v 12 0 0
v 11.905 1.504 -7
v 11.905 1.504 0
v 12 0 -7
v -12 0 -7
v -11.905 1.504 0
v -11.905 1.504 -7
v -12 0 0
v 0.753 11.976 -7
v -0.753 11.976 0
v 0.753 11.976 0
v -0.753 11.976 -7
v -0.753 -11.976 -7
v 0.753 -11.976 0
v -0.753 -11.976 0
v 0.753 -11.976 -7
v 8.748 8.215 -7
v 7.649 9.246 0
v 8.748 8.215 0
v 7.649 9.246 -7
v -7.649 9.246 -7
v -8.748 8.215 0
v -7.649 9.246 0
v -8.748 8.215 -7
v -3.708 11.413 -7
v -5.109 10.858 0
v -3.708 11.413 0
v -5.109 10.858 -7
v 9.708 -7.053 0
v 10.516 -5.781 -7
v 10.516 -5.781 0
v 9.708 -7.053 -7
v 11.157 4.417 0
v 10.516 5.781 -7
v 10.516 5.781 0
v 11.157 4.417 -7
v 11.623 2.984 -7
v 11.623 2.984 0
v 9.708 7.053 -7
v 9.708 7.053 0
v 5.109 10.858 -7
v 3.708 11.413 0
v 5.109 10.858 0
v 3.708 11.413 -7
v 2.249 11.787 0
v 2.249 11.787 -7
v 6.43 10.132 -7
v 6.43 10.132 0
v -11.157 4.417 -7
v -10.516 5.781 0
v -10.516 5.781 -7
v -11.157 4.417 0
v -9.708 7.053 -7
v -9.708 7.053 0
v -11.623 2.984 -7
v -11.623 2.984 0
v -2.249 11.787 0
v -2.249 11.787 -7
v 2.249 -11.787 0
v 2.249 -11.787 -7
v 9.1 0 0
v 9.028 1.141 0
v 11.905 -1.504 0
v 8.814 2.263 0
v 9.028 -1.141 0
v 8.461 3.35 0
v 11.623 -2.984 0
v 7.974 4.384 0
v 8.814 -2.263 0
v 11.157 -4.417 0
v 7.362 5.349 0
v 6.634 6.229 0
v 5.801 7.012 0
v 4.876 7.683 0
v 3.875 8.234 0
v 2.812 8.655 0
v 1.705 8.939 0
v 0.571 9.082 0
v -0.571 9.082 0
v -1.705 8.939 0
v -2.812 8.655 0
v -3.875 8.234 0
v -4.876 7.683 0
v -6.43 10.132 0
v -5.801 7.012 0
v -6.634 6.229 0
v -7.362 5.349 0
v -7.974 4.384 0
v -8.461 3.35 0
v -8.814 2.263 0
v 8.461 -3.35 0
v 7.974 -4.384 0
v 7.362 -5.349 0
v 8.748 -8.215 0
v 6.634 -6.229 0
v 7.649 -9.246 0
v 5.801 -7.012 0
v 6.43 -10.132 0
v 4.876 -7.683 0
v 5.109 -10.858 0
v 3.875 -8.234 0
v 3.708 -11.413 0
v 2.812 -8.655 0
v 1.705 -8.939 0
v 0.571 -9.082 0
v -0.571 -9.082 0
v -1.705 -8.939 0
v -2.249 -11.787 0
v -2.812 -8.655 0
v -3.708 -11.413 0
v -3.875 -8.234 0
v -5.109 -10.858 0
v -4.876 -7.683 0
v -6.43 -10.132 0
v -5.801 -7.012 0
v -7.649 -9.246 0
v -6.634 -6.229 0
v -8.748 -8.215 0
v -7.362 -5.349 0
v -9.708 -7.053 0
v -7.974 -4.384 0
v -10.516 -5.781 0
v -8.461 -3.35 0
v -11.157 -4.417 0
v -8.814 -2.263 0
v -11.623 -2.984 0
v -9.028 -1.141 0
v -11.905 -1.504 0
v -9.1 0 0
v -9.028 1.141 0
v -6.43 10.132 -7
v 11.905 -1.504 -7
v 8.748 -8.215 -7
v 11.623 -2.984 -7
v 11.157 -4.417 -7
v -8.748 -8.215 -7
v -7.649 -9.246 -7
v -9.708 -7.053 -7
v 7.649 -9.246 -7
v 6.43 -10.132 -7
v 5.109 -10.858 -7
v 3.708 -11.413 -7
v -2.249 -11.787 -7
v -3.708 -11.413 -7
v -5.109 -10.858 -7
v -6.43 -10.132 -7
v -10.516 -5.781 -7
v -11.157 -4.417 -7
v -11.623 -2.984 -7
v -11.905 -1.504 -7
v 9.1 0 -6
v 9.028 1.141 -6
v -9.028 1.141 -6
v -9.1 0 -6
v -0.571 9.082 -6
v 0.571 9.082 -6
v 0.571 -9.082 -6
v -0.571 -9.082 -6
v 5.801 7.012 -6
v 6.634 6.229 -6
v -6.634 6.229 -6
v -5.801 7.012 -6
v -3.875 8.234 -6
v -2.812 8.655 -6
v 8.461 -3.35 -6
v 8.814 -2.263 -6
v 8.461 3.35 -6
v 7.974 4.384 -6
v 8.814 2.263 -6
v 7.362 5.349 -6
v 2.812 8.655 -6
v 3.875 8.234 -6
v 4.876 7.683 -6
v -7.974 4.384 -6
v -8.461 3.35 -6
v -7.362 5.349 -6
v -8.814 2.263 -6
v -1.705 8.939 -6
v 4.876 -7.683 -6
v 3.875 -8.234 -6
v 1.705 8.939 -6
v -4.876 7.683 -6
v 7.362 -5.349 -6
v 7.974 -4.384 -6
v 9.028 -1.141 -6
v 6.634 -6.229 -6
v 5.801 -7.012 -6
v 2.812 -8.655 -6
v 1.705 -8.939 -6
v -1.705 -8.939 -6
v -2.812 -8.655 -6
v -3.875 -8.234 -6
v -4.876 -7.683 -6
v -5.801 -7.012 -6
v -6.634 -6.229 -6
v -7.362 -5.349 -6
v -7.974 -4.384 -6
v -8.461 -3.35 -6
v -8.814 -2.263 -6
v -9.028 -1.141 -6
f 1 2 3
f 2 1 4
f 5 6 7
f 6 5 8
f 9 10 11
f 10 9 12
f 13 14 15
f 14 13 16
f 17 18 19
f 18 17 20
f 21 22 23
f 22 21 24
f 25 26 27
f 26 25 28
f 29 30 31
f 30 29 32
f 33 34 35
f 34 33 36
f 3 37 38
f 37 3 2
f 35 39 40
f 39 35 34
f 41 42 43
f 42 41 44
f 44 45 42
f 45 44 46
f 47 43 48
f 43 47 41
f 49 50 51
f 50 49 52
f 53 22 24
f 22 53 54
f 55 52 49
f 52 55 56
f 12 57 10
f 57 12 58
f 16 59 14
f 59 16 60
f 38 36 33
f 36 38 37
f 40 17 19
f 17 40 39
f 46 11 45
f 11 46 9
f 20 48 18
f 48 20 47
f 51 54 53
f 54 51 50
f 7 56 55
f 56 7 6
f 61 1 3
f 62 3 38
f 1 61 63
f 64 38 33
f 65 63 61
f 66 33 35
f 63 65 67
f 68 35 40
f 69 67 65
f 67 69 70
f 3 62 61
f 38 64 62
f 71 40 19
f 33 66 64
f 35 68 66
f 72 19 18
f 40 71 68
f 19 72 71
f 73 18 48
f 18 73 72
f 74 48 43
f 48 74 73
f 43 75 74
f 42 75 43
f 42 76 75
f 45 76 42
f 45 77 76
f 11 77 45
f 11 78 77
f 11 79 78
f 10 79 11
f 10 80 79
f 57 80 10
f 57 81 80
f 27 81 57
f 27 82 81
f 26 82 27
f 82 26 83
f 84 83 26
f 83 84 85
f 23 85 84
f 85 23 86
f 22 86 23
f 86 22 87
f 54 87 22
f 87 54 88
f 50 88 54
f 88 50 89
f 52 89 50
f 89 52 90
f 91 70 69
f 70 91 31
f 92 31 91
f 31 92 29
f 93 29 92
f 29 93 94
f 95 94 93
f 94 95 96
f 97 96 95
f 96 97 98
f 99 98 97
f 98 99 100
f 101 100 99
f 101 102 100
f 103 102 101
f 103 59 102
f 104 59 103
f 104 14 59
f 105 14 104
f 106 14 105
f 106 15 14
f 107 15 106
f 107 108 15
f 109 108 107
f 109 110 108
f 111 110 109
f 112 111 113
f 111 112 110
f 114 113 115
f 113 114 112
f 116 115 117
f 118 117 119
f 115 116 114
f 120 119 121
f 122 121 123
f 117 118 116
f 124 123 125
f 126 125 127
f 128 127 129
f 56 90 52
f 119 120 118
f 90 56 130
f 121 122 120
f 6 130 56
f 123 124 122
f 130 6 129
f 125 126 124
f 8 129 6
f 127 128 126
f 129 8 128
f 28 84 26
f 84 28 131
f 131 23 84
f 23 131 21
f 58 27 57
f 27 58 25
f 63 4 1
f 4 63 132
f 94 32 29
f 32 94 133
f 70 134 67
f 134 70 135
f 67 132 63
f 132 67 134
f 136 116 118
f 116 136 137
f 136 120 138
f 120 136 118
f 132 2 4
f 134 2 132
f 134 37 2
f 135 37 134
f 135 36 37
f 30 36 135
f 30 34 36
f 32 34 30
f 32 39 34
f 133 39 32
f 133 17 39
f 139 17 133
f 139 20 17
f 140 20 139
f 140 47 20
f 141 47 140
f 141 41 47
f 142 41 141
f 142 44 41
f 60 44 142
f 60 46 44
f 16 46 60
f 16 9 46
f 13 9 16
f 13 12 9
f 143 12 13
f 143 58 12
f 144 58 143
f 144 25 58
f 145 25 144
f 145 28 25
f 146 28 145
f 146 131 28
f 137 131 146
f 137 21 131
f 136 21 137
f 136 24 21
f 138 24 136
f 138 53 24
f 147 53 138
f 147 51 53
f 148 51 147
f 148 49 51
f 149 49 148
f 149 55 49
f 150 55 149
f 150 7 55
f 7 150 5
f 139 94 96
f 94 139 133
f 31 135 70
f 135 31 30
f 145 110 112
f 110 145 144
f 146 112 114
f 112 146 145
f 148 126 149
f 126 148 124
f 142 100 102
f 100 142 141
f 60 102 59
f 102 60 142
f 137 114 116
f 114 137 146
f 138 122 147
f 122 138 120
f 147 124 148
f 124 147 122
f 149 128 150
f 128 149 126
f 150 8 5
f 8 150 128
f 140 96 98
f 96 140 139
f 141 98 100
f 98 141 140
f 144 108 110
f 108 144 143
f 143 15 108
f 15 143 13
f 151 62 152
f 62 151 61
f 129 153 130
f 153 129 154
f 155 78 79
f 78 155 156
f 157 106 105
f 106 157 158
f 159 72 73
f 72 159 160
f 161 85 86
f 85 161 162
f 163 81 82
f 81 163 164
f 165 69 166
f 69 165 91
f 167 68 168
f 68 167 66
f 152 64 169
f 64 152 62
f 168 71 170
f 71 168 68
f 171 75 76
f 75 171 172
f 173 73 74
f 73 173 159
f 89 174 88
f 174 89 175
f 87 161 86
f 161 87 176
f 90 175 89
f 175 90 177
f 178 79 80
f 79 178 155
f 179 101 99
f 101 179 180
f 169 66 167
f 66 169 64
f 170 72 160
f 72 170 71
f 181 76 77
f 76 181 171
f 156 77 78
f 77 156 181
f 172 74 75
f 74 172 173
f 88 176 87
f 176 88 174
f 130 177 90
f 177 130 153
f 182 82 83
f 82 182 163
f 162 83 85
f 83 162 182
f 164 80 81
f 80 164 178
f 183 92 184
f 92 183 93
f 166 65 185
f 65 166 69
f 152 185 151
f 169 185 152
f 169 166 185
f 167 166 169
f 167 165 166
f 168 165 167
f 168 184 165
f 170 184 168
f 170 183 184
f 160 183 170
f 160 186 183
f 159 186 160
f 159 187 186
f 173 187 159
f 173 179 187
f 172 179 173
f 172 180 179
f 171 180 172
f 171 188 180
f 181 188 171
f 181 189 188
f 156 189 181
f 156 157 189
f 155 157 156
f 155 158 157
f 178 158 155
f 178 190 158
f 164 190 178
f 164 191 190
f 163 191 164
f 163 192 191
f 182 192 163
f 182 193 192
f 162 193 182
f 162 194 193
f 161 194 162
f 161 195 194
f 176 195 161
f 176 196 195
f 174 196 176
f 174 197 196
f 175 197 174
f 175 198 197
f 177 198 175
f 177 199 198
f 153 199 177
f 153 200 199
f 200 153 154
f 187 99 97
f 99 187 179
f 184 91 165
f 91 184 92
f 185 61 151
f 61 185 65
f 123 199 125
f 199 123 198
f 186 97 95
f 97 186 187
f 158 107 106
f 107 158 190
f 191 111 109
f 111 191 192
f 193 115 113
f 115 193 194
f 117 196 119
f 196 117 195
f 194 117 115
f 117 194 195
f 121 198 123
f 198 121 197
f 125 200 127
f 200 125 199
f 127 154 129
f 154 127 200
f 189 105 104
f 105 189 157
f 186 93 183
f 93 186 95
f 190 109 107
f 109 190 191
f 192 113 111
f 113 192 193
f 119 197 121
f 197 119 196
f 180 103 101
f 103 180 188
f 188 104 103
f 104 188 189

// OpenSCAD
$fn = 50;


difference() {
	union() {
		translate(v = [0, 0, -7.0000000000]) {
			cylinder(h = 7, r = 12.0000000000);
		}
	}
	union() {
		#translate(v = [0, 0, -6.0000000000]) {
			cylinder(h = 6, r = 9.1000000000);
		}
	}
}
